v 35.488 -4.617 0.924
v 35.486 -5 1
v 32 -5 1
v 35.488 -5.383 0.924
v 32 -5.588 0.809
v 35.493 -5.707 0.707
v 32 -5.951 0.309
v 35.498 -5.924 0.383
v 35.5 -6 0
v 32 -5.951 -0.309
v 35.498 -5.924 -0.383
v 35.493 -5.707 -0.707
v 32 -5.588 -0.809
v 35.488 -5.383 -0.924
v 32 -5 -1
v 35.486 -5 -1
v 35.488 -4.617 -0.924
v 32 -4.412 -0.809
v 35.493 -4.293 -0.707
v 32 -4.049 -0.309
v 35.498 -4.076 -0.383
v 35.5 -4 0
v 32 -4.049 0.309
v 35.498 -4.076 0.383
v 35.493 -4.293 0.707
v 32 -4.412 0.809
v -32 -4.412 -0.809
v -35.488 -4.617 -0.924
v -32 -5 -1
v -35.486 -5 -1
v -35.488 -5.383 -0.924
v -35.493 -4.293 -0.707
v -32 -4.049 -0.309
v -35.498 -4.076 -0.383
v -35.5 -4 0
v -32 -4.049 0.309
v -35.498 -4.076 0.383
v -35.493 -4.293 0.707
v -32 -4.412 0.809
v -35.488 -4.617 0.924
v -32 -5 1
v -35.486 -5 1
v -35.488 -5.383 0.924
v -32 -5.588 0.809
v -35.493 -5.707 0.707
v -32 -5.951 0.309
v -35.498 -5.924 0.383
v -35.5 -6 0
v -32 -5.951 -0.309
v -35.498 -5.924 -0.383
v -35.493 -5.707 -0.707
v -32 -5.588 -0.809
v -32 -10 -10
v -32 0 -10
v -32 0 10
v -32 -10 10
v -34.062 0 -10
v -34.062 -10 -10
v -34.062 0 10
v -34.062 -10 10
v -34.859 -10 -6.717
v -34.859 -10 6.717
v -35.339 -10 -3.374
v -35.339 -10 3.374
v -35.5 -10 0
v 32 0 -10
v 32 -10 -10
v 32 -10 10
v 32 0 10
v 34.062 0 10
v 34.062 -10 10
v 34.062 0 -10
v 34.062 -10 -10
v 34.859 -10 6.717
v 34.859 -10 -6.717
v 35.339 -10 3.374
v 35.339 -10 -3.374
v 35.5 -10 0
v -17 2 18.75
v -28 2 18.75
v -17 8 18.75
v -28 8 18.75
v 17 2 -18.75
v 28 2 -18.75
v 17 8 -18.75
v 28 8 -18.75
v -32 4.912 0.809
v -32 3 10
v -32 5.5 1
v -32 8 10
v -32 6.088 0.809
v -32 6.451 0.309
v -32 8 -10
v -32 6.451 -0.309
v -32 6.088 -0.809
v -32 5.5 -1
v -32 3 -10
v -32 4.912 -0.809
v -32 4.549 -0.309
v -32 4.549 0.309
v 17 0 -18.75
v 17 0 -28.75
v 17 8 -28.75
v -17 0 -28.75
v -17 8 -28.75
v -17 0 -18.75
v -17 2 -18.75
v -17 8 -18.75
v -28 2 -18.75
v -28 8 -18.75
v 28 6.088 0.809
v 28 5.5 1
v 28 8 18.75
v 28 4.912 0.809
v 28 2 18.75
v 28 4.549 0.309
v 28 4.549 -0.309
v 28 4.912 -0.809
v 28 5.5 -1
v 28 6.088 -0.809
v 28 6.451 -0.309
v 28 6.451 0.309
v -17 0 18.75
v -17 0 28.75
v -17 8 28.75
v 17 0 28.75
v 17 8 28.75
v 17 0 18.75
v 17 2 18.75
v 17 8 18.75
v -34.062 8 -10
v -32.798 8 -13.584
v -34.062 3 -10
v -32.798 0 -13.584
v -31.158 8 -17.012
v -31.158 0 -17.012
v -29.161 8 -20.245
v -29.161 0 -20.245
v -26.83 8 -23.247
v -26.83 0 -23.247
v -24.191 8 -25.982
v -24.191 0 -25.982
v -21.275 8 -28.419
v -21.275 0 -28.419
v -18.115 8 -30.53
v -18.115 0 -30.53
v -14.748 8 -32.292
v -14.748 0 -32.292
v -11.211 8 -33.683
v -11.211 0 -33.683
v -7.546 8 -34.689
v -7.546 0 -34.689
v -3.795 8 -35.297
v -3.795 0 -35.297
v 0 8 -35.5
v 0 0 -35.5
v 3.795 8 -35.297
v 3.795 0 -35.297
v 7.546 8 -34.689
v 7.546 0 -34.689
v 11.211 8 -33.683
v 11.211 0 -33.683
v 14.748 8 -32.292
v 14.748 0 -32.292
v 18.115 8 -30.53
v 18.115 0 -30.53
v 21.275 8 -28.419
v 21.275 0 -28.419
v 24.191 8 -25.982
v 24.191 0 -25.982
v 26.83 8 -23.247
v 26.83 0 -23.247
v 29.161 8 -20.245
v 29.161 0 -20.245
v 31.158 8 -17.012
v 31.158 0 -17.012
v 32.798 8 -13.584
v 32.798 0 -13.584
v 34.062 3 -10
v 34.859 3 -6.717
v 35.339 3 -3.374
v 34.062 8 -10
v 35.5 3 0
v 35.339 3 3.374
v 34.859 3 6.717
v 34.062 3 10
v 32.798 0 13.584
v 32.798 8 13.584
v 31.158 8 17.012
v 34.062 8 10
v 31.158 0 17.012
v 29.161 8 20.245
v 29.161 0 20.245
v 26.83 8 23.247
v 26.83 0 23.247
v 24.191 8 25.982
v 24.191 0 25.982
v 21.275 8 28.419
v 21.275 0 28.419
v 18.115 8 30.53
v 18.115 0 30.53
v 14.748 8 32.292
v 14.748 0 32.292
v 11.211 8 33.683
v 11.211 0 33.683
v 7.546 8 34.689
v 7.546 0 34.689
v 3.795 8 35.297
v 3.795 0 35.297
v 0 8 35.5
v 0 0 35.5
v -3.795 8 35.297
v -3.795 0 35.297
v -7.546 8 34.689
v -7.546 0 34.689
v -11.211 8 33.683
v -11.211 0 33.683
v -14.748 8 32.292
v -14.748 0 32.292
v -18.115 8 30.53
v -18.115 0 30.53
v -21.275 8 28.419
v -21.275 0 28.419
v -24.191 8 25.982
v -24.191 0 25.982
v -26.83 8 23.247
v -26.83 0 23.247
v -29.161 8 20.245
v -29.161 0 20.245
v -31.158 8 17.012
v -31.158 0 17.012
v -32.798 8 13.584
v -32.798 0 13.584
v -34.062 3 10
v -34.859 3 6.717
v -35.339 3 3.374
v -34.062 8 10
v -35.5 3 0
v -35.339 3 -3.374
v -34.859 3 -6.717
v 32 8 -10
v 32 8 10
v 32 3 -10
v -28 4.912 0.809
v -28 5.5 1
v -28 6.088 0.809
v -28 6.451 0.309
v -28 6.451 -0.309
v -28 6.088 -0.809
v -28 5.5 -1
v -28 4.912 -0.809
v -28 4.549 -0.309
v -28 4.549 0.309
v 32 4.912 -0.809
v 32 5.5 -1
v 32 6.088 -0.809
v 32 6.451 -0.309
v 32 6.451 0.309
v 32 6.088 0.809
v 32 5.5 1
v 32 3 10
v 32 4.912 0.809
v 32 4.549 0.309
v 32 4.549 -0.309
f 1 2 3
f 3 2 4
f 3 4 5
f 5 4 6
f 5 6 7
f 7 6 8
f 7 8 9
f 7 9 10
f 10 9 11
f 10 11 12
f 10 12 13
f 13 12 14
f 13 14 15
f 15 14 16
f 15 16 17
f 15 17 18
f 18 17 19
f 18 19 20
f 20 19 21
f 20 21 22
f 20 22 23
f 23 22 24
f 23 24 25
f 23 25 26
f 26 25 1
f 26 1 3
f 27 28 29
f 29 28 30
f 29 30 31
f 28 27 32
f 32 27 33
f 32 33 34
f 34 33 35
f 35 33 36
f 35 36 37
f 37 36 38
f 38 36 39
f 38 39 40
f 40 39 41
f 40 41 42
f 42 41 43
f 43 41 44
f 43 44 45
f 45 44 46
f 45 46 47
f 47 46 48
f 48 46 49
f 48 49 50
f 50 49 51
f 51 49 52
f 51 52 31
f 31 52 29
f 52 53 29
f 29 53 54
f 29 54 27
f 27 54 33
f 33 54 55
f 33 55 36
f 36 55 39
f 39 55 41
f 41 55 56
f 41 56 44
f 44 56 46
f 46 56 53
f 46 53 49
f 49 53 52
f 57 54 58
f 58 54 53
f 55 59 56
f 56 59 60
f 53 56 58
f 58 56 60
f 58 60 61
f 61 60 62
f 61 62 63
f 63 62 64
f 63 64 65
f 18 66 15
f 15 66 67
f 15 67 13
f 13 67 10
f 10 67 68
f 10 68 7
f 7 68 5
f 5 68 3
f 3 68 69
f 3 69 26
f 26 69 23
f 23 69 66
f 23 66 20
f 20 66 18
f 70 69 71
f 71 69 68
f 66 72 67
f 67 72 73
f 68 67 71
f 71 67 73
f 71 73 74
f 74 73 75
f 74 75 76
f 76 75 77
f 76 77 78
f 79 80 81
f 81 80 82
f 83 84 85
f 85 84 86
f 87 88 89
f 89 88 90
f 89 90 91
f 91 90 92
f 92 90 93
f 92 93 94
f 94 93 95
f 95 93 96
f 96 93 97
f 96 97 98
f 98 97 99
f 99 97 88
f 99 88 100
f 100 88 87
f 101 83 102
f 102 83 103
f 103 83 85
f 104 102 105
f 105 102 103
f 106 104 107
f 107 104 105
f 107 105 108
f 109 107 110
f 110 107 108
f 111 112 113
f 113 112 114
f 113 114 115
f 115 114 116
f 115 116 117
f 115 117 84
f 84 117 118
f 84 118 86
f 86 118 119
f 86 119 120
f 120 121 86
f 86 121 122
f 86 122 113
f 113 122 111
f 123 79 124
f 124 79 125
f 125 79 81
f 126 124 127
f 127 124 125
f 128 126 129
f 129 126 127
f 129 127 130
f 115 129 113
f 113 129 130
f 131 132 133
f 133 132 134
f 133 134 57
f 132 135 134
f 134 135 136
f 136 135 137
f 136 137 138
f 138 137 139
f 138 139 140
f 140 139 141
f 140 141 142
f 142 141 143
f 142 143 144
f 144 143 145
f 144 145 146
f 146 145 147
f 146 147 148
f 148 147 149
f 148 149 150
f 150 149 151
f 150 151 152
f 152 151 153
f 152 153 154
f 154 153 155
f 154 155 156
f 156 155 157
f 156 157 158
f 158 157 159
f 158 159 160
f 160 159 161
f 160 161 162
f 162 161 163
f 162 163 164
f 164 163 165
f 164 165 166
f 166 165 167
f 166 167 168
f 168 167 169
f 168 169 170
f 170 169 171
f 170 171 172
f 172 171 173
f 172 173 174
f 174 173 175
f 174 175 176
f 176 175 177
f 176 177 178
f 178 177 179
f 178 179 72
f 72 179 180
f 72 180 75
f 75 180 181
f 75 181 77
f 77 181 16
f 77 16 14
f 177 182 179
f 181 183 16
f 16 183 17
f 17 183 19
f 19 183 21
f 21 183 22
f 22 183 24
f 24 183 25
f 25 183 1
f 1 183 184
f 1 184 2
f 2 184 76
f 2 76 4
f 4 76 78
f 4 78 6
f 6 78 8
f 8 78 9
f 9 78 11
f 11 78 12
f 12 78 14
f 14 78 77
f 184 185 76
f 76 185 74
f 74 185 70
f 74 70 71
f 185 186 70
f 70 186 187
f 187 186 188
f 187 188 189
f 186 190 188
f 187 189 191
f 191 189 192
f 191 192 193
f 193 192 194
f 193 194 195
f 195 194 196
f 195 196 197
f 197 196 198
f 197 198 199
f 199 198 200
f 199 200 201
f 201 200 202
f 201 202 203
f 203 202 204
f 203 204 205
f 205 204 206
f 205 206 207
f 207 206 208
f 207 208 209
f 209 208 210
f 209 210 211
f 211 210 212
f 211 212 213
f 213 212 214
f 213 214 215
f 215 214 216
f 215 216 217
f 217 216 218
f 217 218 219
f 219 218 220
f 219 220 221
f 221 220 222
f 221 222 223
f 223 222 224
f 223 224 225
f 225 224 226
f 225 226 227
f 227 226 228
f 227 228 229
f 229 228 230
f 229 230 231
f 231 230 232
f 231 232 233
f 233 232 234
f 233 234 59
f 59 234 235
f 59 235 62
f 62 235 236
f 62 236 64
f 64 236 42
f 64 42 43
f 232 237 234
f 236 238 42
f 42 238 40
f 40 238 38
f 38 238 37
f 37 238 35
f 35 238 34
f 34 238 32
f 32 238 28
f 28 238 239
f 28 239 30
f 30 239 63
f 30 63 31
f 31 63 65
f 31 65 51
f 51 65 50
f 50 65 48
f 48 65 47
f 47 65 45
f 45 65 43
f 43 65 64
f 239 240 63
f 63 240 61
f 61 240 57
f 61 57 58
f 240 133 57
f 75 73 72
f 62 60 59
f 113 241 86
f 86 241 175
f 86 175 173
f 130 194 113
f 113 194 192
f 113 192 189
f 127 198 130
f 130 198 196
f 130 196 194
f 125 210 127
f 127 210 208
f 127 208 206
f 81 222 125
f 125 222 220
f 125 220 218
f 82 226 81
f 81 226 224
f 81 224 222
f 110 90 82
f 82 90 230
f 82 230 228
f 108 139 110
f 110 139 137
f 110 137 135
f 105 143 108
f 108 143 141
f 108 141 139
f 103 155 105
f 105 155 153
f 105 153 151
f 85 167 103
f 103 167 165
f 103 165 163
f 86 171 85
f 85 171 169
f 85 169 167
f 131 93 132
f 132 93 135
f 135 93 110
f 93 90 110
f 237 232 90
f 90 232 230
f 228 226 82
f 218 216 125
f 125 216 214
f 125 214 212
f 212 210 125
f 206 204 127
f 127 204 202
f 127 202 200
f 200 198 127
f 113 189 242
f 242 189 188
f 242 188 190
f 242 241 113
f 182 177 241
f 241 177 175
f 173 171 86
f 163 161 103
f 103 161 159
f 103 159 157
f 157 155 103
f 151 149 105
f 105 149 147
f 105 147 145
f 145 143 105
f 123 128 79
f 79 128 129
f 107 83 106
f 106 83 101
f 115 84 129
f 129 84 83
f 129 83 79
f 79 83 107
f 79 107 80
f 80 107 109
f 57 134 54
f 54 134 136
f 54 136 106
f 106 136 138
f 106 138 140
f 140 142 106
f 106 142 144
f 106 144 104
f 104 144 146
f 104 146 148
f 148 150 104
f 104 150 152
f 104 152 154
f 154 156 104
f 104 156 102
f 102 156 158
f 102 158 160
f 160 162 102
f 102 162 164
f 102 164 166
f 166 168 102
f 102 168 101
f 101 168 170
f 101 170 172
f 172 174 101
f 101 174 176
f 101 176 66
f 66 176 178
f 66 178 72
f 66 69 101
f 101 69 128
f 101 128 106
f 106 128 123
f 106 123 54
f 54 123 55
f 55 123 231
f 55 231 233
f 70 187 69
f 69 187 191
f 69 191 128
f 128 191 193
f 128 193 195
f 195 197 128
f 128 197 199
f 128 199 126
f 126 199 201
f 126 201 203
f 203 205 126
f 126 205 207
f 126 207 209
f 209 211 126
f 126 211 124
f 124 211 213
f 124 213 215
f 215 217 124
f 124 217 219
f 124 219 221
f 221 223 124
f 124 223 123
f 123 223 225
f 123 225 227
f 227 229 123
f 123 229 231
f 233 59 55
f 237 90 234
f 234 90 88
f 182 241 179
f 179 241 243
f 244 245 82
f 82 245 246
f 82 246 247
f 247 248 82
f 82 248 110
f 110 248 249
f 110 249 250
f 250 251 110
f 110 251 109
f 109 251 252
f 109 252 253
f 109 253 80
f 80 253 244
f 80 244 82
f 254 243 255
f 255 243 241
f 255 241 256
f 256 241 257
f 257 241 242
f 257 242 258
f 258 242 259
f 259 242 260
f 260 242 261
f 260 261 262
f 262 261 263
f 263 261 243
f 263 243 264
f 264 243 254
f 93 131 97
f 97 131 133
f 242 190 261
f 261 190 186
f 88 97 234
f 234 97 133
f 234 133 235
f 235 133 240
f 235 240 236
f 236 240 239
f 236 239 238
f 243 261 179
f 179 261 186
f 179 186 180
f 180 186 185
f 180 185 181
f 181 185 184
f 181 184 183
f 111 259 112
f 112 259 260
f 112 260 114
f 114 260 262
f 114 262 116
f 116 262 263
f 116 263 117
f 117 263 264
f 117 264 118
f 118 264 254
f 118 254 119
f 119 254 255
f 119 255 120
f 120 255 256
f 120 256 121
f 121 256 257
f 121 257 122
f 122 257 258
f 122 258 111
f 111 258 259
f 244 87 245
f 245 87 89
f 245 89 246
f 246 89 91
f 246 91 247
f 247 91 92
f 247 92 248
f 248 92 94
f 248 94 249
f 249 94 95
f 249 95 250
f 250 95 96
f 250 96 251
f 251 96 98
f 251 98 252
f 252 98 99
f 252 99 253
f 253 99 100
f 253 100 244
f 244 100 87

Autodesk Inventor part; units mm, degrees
ref_plane "YZ Plane" through (0, 0, 0) normal (1, 0, 0) x (0, 1, 0)
ref_plane "XZ Plane" through (0, 0, 0) normal (0, 1, 0) x (-1, 0, 0)
ref_plane "XY Plane" through (0, 0, 0) normal (0, 0, 1) x (1, 0, 0)
sketch "Szkic1" plane through (0, 0, 0) normal (0, 1, 0) x (-1, 0, 0)
  circle A0 centre (0, 0) radius 35.5
  line L0 (0, 18.75) -> (0, -18.75) construction
  line L1 (-28, 0) -> (28, 0) construction
  line L2 (-28, -18.75) -> (28, -18.75)
  line L3 (-28, 18.75) -> (-28, -18.75)
  line L4 (28, 18.75) -> (28, -18.75)
  line L5 (0, 18.75) -> (28, 18.75)
  line L6 (0, 18.75) -> (-28, 18.75)
  line L7 (0, 18.75) -> (0, 28.75) construction
  line L8 (17, 28.75) -> (-17, 28.75)
  line L9 (17, 28.75) -> (17, 18.75)
  line L10 (-17, 28.75) -> (-17, 18.75)
  line L11 (0, -18.75) -> (0, -28.75) construction
  line L12 (-17, -28.75) -> (17, -28.75)
  line L13 (17, -28.75) -> (17, -18.75)
  line L14 (-17, -28.75) -> (-17, -18.75)
  dimension "d0" = 71
  dimension "d1" = 37.5
  dimension "d2" = 56
  dimension "d3" = 10
  dimension "d4" = 34
  dimension "d5" = 10
  dimension "d6" = 34
extrude "Wyciągnięcie proste1" add sketch "Szkic1" along normal blind 2 contours L3 L6 L5 L4 L2
extrude "Wyciągnięcie proste2" add sketch "Szkic1" along normal blind 8
sketch "Szkic2" plane through (0, 0, 0) normal (0, -1, 0) x (1, 0, 0)
  line L0 (32, 0) -> (-32, 0) construction
  circle A0 centre (0, 0) radius 35.5
  line L1 (-32, -10) -> (-32, 10)
  line L2 (32, -10) -> (32, 10)
  line L3 (32, -10) -> (34.0624, -10)
  line L4 (32, 10) -> (34.0624, 10)
  line L5 (-32, -10) -> (-34.0624, -10)
  line L6 (-32, 10) -> (-34.0624, 10)
  dimension "d11" = 64
  dimension "d12" = 71
  dimension "d13" = 20
  dimension "d14" = 20
extrude "Wyciągnięcie proste3" add sketch "Szkic2" along normal blind 10 contours A0 L3 L2 L4 | L6 L1 L5 A0
sketch "Szkic3" plane through (32, 0, -10) normal (-1, 0, 0) x (0, 0, 1)
  line L0 (10, 0) -> (10, -5) construction
  circle A0 centre (10, -5) radius 1
  dimension "d17" = 5
  dimension "d18" = 2
extrude "Wyciągnięcie proste4" cut sketch "Szkic3" along normal through all both and the other way through all
sketch "Szkic4" plane through (0, 2, 0) normal (0, 1, 0) x (1, 0, 0)
  line L0 (-10.2735, 0) -> (10.2735, 0) construction
  line L1 (0, 9.2596) -> (0, -9.2596) construction
  point P0 (0, 0)
sketch "Szkic5" plane through (0, 8, 0) normal (0, 1, 0) x (1, 0, 0)
  line L0 (32, 0) -> (-32, 0) construction
  circle A0 centre (0, 0) radius 35.5
  line L1 (-32, -10) -> (-32, 10)
  line L2 (32, -10) -> (32, 10)
  line L3 (32, -10) -> (34.0624, -10)
  line L4 (32, 10) -> (34.0624, 10)
  line L5 (-32, -10) -> (-34.0624, -10)
  line L6 (-32, 10) -> (-34.0624, 10)
  dimension "d21" = 64
  dimension "d22" = 71
  dimension "d23" = 20
  dimension "d24" = 20
extrude "Wyciągnięcie proste5" cut sketch "Szkic5" against normal blind 5 contours A0 L3 L2 L4 | L6 L1 L5 A0
sketch "Szkic6" plane through (32, 8, 10) normal (1, 0, 0) x (0, 0, -1)
  line L0 (10, -8) -> (10, -2.5) construction
  circle A0 centre (10, -2.5) radius 1
  dimension "d27" = 5.5
  dimension "d28" = 2
extrude "Wyciągnięcie proste6" cut sketch "Szkic6" against normal through all
properties part number "003-001"
